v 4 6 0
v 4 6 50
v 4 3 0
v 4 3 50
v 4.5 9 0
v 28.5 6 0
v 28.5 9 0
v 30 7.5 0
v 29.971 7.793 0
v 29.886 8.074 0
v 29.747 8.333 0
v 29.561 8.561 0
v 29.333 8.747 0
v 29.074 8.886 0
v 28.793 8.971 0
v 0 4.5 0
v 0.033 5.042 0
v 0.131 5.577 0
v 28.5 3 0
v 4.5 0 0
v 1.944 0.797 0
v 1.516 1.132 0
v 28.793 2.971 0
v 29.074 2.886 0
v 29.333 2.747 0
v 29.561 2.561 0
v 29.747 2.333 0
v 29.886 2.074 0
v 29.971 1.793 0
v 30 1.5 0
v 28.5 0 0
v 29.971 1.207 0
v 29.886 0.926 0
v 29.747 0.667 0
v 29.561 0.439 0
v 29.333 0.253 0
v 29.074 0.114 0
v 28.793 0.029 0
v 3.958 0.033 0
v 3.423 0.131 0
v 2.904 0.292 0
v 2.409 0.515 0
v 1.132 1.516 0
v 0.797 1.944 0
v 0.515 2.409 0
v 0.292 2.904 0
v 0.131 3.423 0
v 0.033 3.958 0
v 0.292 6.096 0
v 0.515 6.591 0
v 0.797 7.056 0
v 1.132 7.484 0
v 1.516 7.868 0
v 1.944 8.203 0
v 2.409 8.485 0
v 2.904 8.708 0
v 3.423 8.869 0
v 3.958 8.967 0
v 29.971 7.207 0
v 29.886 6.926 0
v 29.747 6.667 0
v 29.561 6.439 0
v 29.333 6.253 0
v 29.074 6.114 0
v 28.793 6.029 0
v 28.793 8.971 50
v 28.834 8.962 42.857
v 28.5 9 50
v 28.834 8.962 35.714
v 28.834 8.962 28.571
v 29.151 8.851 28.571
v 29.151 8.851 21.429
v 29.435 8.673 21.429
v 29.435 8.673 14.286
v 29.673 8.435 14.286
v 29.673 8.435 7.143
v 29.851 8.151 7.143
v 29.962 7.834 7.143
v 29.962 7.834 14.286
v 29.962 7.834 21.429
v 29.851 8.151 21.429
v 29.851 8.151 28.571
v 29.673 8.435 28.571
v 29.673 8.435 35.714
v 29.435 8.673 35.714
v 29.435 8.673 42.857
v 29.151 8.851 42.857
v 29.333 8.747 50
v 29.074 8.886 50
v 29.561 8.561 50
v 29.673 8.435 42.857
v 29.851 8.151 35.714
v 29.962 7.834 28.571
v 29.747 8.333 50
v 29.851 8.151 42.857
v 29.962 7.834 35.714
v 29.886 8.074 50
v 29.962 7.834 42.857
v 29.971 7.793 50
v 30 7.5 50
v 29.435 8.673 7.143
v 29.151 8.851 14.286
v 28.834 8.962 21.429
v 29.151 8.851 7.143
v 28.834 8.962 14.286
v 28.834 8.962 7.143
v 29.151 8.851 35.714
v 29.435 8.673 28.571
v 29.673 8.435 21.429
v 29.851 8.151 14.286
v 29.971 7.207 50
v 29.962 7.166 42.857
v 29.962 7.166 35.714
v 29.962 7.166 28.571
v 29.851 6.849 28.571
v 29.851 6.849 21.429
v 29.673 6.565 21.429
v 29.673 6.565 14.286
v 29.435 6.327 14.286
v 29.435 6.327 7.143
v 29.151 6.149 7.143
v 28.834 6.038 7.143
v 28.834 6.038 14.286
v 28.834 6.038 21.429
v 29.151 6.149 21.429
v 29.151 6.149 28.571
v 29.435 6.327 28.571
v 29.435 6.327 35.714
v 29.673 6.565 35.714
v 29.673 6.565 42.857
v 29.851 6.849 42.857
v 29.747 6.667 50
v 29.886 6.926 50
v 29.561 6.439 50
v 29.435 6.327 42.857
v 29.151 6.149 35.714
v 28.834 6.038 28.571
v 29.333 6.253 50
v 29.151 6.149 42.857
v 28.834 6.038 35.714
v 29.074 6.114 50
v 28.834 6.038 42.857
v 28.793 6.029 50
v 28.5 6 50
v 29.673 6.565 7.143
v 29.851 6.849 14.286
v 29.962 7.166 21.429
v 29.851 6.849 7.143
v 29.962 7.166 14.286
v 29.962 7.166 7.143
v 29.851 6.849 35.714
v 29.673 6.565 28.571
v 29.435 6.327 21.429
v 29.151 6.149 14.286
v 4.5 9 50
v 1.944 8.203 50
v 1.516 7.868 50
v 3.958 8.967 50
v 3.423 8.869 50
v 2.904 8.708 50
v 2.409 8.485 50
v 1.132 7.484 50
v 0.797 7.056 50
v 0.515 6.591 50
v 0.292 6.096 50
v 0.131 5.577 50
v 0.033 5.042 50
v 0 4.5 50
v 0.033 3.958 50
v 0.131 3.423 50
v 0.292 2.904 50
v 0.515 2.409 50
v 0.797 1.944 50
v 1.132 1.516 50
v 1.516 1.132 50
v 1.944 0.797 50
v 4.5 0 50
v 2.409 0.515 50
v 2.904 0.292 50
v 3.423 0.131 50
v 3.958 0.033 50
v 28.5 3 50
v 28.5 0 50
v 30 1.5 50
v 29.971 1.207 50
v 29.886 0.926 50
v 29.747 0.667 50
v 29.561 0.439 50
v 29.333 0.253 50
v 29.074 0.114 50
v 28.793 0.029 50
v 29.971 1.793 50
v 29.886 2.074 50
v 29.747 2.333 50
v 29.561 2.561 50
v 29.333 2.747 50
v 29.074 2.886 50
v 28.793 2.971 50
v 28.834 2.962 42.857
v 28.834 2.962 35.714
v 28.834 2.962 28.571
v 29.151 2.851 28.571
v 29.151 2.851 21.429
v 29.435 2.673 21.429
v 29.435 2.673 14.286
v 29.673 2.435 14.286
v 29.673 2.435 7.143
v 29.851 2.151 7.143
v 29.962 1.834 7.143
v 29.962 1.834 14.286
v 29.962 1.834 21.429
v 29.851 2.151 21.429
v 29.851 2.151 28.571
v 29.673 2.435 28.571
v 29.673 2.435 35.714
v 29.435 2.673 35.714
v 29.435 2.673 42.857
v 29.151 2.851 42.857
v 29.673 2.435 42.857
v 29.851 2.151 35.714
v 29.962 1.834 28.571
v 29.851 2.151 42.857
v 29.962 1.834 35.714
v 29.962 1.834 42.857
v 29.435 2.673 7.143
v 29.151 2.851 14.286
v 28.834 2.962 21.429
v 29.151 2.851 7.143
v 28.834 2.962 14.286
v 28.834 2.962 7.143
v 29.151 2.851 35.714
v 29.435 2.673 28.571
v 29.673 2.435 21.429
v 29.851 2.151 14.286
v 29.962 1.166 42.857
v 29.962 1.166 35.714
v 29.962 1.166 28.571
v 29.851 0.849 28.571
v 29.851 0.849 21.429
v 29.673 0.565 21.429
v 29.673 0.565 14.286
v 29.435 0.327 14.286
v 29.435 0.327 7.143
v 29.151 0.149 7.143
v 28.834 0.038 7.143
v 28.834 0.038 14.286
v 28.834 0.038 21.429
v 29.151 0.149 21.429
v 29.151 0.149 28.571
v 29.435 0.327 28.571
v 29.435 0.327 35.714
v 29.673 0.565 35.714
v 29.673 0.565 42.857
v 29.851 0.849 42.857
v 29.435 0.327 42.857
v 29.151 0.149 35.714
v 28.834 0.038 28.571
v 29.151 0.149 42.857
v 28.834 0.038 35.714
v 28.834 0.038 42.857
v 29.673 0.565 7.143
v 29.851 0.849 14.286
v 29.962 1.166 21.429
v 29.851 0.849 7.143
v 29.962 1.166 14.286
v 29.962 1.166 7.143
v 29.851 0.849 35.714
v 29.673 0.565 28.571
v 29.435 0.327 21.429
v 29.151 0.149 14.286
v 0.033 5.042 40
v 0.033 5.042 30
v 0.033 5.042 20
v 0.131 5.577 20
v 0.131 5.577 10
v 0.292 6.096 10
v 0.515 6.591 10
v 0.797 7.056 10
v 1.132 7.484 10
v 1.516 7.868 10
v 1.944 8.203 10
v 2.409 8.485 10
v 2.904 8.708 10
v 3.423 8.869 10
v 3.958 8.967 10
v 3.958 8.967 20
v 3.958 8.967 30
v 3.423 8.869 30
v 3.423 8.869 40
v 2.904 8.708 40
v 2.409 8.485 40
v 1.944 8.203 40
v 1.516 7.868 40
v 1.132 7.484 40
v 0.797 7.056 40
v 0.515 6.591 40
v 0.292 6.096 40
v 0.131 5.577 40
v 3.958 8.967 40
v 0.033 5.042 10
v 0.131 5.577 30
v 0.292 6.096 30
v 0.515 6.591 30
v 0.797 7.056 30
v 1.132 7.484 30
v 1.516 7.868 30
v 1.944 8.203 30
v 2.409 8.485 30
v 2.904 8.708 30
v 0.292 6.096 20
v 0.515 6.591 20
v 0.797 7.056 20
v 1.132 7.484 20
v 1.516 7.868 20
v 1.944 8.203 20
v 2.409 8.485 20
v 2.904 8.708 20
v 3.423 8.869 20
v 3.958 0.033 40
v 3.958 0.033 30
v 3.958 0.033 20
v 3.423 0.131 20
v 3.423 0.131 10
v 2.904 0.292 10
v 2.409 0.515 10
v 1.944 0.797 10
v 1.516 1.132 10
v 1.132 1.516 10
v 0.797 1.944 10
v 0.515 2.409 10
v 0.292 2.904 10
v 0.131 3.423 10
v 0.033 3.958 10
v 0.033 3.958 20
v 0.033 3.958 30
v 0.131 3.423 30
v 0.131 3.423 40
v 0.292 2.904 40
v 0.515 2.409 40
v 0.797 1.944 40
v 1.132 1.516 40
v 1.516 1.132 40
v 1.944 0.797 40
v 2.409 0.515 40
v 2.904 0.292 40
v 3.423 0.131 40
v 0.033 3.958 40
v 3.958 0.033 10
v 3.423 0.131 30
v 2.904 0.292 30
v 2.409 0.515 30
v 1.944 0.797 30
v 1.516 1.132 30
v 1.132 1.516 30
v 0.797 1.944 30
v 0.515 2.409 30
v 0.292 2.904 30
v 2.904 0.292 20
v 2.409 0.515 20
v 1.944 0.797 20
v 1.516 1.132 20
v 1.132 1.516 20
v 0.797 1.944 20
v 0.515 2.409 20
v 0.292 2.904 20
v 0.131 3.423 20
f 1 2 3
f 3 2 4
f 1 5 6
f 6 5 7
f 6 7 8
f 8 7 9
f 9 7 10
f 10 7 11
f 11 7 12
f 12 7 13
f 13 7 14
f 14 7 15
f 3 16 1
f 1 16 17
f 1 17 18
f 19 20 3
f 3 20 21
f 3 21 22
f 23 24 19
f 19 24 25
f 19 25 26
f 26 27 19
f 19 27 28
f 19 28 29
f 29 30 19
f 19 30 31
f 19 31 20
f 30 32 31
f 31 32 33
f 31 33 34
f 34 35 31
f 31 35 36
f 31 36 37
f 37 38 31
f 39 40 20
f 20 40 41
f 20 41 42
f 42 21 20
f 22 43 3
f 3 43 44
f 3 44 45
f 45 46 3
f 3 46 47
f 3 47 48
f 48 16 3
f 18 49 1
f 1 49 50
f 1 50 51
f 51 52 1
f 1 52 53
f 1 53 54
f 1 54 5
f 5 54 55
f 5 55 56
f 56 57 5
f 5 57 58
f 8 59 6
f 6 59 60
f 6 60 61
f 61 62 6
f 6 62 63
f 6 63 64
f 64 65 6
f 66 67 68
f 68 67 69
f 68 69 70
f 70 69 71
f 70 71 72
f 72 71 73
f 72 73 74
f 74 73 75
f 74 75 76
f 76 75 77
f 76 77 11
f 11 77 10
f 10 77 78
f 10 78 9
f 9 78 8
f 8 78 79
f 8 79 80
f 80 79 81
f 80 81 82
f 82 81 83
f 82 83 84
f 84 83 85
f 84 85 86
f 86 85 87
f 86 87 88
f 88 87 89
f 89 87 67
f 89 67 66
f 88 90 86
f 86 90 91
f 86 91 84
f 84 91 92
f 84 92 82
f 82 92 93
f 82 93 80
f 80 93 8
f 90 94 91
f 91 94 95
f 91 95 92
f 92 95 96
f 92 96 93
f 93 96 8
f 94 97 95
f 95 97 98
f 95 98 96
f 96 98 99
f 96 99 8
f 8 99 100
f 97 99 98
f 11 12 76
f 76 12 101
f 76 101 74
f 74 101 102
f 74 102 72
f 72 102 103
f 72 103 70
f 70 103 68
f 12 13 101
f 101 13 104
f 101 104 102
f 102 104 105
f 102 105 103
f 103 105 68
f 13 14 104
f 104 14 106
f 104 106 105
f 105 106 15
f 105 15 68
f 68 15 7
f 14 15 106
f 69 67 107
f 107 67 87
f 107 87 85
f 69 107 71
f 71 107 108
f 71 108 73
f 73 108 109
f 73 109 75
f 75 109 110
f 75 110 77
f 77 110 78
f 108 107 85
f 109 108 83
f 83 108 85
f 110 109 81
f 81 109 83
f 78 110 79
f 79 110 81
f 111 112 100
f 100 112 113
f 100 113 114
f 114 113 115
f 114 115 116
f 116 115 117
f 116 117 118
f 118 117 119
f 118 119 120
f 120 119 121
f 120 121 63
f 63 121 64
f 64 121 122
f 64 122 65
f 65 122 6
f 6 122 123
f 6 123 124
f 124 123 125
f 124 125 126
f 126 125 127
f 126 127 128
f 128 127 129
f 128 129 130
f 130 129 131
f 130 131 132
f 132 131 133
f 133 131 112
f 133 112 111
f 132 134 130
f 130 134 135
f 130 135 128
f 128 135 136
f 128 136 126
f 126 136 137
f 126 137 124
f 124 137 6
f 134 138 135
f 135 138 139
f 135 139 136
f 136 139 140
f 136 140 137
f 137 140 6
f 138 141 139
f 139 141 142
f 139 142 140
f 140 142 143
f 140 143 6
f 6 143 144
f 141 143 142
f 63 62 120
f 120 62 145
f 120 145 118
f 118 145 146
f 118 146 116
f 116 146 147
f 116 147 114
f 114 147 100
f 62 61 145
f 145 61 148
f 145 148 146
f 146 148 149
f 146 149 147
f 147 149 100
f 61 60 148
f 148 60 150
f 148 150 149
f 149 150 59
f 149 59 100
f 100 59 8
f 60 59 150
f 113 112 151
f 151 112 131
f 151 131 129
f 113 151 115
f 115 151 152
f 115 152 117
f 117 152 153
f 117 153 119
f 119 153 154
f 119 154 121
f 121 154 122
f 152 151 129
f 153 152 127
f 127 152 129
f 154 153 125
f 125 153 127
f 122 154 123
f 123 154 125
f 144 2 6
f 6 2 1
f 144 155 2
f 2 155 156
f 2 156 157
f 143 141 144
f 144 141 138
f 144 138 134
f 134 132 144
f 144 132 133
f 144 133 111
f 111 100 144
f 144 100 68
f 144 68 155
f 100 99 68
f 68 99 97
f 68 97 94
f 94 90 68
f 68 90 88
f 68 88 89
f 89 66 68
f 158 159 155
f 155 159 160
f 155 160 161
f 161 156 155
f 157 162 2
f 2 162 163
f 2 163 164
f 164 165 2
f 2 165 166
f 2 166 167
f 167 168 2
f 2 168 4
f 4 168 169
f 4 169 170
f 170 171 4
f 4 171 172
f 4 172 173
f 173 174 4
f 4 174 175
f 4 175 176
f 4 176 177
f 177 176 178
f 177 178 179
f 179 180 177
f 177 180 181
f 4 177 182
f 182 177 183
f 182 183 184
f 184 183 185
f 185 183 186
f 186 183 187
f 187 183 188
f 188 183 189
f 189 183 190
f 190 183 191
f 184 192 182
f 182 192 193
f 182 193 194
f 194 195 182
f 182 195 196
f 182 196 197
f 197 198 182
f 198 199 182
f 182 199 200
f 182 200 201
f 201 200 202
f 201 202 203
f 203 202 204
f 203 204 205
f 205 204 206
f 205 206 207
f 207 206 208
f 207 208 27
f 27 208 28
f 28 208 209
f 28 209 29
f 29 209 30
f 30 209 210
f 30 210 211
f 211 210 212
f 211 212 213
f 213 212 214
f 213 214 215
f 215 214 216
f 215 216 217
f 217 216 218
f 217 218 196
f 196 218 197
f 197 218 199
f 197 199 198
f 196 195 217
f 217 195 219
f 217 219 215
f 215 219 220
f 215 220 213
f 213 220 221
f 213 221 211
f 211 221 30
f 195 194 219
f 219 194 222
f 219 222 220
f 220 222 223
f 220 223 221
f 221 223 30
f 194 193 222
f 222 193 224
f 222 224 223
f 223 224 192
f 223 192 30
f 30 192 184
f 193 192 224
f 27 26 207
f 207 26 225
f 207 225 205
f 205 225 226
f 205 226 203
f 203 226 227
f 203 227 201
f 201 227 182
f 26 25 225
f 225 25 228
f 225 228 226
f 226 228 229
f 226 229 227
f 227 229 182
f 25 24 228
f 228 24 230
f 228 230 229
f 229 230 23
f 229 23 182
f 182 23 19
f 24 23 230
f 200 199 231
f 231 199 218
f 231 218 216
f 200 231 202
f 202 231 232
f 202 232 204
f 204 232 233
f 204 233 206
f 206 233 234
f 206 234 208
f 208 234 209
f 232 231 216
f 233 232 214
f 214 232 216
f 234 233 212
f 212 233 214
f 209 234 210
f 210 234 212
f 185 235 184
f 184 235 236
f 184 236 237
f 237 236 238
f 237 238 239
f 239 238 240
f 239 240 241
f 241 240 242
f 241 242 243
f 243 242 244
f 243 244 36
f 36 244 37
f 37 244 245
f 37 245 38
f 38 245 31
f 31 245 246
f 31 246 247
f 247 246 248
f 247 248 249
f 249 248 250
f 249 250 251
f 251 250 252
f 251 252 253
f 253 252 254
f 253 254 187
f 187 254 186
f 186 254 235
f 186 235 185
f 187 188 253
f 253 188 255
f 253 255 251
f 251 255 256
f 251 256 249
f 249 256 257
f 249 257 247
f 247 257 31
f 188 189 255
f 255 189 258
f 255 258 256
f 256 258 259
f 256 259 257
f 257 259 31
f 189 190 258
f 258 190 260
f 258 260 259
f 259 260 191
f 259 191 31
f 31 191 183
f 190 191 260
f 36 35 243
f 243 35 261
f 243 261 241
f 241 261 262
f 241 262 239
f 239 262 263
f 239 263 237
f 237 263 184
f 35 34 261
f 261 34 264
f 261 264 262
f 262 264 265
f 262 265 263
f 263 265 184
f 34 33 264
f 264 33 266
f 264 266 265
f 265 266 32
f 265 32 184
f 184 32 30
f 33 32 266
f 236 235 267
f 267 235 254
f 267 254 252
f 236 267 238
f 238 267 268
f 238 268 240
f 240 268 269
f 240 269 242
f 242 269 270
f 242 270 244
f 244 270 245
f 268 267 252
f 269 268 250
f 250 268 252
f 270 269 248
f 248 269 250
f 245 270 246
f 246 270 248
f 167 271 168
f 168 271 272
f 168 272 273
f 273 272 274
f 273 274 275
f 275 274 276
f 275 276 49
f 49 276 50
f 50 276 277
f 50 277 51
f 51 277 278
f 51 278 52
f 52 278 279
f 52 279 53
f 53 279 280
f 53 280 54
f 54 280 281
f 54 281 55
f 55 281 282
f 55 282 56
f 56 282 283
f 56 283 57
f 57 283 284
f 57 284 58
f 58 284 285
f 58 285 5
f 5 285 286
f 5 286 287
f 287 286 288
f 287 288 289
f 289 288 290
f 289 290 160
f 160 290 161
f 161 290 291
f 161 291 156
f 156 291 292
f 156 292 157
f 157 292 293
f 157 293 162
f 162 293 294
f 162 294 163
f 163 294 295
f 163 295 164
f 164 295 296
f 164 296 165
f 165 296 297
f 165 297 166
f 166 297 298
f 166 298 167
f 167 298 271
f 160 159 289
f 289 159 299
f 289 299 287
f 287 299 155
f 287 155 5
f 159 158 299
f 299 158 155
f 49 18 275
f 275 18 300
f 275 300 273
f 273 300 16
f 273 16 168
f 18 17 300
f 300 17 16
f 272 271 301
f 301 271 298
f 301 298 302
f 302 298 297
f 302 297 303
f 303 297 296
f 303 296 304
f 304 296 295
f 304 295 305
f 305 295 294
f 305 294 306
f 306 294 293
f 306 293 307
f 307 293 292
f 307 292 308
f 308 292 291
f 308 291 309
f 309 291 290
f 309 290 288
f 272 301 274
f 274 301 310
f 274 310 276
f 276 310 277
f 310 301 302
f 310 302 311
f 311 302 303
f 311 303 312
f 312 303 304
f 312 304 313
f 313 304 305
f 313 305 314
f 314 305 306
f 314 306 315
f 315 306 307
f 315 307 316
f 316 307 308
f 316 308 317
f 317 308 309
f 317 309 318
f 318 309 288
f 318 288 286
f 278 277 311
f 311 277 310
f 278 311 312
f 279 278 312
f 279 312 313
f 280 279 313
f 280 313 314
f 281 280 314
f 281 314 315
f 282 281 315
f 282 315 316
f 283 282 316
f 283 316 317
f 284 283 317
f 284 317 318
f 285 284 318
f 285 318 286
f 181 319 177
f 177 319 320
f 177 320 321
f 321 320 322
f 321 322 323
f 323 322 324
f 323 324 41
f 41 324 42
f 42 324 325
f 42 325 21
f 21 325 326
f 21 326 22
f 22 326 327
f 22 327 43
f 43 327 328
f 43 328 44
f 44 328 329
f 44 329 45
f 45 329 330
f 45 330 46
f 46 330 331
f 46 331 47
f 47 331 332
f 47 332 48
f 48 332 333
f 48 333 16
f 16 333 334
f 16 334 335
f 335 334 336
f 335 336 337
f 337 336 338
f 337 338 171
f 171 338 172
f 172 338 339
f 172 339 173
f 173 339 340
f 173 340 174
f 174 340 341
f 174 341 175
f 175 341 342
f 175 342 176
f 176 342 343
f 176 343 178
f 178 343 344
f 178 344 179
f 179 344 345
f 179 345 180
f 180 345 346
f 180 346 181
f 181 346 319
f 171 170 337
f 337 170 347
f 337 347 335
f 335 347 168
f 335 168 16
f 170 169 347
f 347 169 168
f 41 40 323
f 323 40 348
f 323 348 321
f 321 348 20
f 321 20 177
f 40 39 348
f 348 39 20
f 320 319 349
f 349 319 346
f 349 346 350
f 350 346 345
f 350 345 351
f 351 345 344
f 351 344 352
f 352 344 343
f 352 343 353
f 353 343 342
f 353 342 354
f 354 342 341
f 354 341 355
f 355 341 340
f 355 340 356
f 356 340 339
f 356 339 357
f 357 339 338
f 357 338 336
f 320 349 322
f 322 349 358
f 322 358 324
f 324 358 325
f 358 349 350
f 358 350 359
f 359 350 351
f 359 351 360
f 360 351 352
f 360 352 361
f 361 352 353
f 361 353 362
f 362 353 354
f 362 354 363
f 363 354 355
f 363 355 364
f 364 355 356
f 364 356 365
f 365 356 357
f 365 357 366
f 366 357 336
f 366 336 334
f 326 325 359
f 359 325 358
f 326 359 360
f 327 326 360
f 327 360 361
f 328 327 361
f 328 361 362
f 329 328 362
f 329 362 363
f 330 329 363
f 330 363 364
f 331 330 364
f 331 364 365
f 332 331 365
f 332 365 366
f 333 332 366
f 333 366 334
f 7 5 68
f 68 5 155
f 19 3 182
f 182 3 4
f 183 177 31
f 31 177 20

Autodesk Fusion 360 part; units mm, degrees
sketch "Schizzo1" plane through (0, 0, 0) normal (0, 0, 1) x (1, 0, 0)
  line L0 (0, 0) -> (10, 0)
  line L1 (10, 0) -> (10, 2)
  line L2 (10, 2) -> (0, 2)
  line L3 (0, 2) -> (0, 0)
  line L4 (0, 2) -> (2.5, 2)
  line L5 (2.5, 2) -> (2.5, 4)
  line L6 (2.5, 4) -> (0, 4)
  line L7 (0, 4) -> (0, 2)
  line L8 (0, 4) -> (10, 4)
  line L9 (10, 4) -> (10, 6)
  line L10 (10, 6) -> (0, 6)
  line L11 (0, 6) -> (0, 4)
  dimension "d1" = 10
  dimension "d2" = 2
  dimension "d3" = 2
sketch "Schizzo2" plane through (0, 0, 0) normal (0, 0, 1) x (1, 0, 0)
  line L0 (0, 0) -> (30, 0)
  line L1 (30, 0) -> (30, 3)
  line L2 (30, 3) -> (0, 3)
  line L3 (0, 3) -> (0, 0)
  line L4 (0, 3) -> (10, 3)
  line L5 (10, 3) -> (10, 6)
  line L6 (10, 6) -> (0, 6)
  line L7 (0, 6) -> (0, 3)
  line L8 (0, 6) -> (30, 6)
  line L9 (30, 6) -> (30, 9)
  line L10 (30, 9) -> (0, 9)
  line L11 (0, 9) -> (0, 6)
extrude "Estrusione2" add sketch "Schizzo2" along normal blind 50
fillet "Raccordo3" radius 4.5 2 edges at (0, 0, 25) (0, 9, 25)
fillet "Raccordo4" radius 1.5 4 edges at (30, 0, 25) (30, 3, 25) (30, 6, 25) (30, 9, 25)
extrude "Estrusione3" cut 1 faces at (10, 4, 33.3333) along direction (-1, 0, 0) blind 6
extrude "Estrusione1" [suppressed]
fillet "Raccordo1" [suppressed]
fillet "Raccordo2" [suppressed]
